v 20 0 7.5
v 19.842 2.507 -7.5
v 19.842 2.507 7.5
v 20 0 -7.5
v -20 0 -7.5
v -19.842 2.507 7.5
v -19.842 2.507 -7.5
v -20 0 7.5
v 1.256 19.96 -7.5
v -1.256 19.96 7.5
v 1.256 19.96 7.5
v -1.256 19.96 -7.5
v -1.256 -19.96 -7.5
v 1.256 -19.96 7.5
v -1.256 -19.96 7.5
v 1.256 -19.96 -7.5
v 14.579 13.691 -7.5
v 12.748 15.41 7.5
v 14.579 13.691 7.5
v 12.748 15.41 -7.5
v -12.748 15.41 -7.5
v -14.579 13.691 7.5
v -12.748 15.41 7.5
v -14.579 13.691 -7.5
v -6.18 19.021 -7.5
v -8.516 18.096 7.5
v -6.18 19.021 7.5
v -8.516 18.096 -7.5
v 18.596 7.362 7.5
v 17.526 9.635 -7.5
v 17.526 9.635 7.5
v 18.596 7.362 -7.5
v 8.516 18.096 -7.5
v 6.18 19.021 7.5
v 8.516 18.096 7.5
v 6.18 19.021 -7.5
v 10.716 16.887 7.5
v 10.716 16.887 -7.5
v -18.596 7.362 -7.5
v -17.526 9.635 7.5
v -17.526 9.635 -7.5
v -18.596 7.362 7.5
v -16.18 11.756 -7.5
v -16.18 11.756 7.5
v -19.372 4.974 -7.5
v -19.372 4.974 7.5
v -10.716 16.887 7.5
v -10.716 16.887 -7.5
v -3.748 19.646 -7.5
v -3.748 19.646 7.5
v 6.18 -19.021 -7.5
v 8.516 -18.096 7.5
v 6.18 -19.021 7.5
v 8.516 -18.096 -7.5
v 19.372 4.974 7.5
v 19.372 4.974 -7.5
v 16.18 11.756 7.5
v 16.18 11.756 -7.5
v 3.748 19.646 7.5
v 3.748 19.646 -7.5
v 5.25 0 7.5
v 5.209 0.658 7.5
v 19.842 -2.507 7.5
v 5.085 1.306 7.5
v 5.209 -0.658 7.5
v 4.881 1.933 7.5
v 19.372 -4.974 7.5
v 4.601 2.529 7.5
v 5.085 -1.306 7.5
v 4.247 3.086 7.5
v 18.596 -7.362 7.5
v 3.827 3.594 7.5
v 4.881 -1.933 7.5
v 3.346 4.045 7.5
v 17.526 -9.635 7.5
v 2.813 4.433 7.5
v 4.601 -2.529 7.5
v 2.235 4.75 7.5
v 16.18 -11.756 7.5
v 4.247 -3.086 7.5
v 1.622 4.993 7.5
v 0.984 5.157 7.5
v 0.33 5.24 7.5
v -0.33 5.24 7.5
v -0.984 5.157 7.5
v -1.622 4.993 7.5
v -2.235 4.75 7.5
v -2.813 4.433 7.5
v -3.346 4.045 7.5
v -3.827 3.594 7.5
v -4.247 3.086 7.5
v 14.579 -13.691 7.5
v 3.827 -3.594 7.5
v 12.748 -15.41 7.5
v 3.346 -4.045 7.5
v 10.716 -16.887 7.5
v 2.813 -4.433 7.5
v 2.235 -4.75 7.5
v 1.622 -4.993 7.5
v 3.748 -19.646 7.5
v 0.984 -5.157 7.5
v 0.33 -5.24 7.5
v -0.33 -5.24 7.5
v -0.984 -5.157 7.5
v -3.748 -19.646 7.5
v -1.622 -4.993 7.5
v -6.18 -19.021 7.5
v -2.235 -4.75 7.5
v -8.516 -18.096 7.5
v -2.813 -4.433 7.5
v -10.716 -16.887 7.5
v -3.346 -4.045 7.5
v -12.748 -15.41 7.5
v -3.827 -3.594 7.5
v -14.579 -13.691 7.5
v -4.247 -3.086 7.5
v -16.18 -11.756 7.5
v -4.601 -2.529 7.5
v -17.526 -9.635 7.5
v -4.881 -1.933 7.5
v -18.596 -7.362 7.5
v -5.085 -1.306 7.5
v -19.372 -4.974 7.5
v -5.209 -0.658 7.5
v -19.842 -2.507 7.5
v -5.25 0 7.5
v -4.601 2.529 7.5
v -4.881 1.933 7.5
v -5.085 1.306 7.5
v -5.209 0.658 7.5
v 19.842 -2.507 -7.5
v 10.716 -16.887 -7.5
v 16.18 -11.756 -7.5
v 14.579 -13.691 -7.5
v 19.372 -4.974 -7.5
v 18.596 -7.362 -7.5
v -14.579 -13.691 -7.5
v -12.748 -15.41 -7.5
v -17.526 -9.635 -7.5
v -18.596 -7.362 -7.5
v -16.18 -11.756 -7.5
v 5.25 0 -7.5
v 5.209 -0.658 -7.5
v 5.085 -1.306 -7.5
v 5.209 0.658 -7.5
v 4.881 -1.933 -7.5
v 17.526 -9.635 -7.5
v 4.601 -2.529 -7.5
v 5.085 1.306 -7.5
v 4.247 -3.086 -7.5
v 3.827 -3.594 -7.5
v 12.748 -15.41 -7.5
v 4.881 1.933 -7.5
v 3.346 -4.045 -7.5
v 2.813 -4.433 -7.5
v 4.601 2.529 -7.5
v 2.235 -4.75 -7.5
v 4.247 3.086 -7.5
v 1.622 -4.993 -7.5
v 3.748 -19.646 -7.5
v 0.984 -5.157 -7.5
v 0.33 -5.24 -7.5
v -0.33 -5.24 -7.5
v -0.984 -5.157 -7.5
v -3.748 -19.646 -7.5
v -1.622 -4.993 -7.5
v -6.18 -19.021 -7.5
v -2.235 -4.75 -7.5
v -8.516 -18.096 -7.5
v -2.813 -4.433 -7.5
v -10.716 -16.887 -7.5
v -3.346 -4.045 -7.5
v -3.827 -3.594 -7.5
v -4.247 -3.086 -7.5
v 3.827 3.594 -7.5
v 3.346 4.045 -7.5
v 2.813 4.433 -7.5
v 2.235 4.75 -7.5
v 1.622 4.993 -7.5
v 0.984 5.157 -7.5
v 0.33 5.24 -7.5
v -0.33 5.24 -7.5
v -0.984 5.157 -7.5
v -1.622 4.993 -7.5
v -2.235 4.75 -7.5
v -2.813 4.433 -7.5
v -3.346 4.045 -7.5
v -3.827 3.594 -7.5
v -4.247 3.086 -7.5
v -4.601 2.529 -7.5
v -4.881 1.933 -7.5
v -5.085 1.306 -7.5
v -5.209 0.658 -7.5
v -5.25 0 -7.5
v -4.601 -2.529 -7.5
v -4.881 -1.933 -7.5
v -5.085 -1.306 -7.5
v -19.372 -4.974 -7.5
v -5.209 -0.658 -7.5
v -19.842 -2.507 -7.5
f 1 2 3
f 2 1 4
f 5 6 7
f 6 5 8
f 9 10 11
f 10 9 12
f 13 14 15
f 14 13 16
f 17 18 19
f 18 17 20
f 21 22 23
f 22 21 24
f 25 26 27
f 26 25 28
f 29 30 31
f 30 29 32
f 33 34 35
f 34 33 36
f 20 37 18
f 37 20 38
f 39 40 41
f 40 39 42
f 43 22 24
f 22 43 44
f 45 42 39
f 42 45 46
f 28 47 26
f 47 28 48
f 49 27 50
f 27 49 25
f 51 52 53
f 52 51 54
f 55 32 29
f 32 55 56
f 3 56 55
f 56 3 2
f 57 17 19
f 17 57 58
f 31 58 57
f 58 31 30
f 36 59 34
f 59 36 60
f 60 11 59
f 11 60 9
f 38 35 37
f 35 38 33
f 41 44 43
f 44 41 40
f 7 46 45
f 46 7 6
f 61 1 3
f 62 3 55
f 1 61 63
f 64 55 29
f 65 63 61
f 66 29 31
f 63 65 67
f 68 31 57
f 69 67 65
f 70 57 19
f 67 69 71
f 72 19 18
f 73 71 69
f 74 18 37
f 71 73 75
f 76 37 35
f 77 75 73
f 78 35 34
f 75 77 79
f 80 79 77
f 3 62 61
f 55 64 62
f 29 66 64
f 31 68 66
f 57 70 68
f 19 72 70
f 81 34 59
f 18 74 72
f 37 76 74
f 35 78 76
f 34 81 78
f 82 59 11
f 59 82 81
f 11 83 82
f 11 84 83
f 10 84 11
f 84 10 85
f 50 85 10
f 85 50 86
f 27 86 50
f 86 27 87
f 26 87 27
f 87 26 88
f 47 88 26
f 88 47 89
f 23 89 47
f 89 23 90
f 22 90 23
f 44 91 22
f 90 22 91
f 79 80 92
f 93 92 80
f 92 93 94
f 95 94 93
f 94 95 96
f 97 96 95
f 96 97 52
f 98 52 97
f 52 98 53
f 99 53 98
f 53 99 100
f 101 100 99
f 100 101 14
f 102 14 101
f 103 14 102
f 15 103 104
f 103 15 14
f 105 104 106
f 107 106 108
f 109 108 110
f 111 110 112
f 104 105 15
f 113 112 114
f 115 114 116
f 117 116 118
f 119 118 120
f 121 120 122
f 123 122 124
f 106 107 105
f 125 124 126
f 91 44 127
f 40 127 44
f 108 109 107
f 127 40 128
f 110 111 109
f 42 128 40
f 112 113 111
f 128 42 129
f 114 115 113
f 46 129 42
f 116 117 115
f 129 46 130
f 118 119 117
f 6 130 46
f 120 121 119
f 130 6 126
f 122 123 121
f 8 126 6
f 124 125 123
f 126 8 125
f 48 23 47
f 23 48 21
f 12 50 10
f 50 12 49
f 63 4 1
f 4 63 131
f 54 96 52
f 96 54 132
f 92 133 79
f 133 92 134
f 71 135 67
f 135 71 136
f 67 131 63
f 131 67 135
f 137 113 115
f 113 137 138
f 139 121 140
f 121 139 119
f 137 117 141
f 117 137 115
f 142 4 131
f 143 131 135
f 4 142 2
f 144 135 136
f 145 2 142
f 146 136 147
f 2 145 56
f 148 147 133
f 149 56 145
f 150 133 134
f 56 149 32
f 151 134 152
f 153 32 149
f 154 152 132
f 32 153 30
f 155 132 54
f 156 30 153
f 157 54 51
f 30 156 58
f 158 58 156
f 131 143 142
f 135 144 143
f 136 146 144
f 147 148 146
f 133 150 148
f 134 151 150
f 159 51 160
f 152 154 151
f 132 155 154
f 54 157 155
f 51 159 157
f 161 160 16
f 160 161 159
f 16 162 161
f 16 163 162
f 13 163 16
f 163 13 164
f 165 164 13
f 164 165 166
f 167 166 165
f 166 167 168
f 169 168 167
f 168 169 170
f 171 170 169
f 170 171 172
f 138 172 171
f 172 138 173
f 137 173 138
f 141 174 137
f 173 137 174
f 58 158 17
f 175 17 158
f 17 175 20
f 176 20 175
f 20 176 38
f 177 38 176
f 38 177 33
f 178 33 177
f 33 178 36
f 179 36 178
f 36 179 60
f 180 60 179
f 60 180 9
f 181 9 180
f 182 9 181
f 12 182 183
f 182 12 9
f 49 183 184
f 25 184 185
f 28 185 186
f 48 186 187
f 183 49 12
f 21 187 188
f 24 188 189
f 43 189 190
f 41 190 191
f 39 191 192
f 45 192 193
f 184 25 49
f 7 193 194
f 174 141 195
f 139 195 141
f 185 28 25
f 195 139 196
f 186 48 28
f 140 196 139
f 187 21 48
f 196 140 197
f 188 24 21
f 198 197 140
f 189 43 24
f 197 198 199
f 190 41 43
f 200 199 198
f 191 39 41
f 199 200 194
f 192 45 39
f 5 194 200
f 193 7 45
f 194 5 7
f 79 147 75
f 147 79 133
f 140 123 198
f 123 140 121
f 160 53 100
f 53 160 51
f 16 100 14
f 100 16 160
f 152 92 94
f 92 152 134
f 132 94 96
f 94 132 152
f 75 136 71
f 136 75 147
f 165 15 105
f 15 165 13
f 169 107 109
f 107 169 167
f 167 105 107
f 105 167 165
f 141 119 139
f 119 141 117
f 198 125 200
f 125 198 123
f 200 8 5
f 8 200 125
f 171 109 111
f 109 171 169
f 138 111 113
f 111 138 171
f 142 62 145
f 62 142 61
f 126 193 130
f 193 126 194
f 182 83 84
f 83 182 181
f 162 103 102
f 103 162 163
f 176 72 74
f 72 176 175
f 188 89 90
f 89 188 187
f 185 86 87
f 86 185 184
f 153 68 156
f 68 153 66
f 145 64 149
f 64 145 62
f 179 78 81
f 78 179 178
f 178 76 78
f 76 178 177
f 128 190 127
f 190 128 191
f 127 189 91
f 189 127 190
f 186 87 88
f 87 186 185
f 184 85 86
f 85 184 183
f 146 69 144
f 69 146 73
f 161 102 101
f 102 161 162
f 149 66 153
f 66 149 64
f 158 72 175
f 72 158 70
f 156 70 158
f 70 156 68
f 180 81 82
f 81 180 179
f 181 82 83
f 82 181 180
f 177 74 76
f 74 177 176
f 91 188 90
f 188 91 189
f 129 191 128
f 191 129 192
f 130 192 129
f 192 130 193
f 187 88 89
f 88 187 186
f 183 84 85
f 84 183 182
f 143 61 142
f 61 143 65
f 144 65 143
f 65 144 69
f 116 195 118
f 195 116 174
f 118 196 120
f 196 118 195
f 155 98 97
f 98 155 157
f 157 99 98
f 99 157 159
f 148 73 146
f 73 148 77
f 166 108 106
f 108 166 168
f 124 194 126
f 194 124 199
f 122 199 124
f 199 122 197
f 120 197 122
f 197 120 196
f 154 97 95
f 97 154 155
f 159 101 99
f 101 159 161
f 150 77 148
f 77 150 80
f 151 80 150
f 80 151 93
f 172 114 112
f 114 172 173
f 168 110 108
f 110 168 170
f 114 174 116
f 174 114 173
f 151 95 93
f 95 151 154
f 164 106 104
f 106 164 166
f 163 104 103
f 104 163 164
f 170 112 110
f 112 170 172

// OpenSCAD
$fn = 50;


difference() {
	union() {
		translate(v = [0, 0, -7.5000000000]) {
			cylinder(h = 15, r = 20.0000000000);
		}
	}
	union() {
		translate(v = [0, 0, -100.0000000000]) {
			cylinder(h = 200, r = 5.2500000000);
		}
	}
}
